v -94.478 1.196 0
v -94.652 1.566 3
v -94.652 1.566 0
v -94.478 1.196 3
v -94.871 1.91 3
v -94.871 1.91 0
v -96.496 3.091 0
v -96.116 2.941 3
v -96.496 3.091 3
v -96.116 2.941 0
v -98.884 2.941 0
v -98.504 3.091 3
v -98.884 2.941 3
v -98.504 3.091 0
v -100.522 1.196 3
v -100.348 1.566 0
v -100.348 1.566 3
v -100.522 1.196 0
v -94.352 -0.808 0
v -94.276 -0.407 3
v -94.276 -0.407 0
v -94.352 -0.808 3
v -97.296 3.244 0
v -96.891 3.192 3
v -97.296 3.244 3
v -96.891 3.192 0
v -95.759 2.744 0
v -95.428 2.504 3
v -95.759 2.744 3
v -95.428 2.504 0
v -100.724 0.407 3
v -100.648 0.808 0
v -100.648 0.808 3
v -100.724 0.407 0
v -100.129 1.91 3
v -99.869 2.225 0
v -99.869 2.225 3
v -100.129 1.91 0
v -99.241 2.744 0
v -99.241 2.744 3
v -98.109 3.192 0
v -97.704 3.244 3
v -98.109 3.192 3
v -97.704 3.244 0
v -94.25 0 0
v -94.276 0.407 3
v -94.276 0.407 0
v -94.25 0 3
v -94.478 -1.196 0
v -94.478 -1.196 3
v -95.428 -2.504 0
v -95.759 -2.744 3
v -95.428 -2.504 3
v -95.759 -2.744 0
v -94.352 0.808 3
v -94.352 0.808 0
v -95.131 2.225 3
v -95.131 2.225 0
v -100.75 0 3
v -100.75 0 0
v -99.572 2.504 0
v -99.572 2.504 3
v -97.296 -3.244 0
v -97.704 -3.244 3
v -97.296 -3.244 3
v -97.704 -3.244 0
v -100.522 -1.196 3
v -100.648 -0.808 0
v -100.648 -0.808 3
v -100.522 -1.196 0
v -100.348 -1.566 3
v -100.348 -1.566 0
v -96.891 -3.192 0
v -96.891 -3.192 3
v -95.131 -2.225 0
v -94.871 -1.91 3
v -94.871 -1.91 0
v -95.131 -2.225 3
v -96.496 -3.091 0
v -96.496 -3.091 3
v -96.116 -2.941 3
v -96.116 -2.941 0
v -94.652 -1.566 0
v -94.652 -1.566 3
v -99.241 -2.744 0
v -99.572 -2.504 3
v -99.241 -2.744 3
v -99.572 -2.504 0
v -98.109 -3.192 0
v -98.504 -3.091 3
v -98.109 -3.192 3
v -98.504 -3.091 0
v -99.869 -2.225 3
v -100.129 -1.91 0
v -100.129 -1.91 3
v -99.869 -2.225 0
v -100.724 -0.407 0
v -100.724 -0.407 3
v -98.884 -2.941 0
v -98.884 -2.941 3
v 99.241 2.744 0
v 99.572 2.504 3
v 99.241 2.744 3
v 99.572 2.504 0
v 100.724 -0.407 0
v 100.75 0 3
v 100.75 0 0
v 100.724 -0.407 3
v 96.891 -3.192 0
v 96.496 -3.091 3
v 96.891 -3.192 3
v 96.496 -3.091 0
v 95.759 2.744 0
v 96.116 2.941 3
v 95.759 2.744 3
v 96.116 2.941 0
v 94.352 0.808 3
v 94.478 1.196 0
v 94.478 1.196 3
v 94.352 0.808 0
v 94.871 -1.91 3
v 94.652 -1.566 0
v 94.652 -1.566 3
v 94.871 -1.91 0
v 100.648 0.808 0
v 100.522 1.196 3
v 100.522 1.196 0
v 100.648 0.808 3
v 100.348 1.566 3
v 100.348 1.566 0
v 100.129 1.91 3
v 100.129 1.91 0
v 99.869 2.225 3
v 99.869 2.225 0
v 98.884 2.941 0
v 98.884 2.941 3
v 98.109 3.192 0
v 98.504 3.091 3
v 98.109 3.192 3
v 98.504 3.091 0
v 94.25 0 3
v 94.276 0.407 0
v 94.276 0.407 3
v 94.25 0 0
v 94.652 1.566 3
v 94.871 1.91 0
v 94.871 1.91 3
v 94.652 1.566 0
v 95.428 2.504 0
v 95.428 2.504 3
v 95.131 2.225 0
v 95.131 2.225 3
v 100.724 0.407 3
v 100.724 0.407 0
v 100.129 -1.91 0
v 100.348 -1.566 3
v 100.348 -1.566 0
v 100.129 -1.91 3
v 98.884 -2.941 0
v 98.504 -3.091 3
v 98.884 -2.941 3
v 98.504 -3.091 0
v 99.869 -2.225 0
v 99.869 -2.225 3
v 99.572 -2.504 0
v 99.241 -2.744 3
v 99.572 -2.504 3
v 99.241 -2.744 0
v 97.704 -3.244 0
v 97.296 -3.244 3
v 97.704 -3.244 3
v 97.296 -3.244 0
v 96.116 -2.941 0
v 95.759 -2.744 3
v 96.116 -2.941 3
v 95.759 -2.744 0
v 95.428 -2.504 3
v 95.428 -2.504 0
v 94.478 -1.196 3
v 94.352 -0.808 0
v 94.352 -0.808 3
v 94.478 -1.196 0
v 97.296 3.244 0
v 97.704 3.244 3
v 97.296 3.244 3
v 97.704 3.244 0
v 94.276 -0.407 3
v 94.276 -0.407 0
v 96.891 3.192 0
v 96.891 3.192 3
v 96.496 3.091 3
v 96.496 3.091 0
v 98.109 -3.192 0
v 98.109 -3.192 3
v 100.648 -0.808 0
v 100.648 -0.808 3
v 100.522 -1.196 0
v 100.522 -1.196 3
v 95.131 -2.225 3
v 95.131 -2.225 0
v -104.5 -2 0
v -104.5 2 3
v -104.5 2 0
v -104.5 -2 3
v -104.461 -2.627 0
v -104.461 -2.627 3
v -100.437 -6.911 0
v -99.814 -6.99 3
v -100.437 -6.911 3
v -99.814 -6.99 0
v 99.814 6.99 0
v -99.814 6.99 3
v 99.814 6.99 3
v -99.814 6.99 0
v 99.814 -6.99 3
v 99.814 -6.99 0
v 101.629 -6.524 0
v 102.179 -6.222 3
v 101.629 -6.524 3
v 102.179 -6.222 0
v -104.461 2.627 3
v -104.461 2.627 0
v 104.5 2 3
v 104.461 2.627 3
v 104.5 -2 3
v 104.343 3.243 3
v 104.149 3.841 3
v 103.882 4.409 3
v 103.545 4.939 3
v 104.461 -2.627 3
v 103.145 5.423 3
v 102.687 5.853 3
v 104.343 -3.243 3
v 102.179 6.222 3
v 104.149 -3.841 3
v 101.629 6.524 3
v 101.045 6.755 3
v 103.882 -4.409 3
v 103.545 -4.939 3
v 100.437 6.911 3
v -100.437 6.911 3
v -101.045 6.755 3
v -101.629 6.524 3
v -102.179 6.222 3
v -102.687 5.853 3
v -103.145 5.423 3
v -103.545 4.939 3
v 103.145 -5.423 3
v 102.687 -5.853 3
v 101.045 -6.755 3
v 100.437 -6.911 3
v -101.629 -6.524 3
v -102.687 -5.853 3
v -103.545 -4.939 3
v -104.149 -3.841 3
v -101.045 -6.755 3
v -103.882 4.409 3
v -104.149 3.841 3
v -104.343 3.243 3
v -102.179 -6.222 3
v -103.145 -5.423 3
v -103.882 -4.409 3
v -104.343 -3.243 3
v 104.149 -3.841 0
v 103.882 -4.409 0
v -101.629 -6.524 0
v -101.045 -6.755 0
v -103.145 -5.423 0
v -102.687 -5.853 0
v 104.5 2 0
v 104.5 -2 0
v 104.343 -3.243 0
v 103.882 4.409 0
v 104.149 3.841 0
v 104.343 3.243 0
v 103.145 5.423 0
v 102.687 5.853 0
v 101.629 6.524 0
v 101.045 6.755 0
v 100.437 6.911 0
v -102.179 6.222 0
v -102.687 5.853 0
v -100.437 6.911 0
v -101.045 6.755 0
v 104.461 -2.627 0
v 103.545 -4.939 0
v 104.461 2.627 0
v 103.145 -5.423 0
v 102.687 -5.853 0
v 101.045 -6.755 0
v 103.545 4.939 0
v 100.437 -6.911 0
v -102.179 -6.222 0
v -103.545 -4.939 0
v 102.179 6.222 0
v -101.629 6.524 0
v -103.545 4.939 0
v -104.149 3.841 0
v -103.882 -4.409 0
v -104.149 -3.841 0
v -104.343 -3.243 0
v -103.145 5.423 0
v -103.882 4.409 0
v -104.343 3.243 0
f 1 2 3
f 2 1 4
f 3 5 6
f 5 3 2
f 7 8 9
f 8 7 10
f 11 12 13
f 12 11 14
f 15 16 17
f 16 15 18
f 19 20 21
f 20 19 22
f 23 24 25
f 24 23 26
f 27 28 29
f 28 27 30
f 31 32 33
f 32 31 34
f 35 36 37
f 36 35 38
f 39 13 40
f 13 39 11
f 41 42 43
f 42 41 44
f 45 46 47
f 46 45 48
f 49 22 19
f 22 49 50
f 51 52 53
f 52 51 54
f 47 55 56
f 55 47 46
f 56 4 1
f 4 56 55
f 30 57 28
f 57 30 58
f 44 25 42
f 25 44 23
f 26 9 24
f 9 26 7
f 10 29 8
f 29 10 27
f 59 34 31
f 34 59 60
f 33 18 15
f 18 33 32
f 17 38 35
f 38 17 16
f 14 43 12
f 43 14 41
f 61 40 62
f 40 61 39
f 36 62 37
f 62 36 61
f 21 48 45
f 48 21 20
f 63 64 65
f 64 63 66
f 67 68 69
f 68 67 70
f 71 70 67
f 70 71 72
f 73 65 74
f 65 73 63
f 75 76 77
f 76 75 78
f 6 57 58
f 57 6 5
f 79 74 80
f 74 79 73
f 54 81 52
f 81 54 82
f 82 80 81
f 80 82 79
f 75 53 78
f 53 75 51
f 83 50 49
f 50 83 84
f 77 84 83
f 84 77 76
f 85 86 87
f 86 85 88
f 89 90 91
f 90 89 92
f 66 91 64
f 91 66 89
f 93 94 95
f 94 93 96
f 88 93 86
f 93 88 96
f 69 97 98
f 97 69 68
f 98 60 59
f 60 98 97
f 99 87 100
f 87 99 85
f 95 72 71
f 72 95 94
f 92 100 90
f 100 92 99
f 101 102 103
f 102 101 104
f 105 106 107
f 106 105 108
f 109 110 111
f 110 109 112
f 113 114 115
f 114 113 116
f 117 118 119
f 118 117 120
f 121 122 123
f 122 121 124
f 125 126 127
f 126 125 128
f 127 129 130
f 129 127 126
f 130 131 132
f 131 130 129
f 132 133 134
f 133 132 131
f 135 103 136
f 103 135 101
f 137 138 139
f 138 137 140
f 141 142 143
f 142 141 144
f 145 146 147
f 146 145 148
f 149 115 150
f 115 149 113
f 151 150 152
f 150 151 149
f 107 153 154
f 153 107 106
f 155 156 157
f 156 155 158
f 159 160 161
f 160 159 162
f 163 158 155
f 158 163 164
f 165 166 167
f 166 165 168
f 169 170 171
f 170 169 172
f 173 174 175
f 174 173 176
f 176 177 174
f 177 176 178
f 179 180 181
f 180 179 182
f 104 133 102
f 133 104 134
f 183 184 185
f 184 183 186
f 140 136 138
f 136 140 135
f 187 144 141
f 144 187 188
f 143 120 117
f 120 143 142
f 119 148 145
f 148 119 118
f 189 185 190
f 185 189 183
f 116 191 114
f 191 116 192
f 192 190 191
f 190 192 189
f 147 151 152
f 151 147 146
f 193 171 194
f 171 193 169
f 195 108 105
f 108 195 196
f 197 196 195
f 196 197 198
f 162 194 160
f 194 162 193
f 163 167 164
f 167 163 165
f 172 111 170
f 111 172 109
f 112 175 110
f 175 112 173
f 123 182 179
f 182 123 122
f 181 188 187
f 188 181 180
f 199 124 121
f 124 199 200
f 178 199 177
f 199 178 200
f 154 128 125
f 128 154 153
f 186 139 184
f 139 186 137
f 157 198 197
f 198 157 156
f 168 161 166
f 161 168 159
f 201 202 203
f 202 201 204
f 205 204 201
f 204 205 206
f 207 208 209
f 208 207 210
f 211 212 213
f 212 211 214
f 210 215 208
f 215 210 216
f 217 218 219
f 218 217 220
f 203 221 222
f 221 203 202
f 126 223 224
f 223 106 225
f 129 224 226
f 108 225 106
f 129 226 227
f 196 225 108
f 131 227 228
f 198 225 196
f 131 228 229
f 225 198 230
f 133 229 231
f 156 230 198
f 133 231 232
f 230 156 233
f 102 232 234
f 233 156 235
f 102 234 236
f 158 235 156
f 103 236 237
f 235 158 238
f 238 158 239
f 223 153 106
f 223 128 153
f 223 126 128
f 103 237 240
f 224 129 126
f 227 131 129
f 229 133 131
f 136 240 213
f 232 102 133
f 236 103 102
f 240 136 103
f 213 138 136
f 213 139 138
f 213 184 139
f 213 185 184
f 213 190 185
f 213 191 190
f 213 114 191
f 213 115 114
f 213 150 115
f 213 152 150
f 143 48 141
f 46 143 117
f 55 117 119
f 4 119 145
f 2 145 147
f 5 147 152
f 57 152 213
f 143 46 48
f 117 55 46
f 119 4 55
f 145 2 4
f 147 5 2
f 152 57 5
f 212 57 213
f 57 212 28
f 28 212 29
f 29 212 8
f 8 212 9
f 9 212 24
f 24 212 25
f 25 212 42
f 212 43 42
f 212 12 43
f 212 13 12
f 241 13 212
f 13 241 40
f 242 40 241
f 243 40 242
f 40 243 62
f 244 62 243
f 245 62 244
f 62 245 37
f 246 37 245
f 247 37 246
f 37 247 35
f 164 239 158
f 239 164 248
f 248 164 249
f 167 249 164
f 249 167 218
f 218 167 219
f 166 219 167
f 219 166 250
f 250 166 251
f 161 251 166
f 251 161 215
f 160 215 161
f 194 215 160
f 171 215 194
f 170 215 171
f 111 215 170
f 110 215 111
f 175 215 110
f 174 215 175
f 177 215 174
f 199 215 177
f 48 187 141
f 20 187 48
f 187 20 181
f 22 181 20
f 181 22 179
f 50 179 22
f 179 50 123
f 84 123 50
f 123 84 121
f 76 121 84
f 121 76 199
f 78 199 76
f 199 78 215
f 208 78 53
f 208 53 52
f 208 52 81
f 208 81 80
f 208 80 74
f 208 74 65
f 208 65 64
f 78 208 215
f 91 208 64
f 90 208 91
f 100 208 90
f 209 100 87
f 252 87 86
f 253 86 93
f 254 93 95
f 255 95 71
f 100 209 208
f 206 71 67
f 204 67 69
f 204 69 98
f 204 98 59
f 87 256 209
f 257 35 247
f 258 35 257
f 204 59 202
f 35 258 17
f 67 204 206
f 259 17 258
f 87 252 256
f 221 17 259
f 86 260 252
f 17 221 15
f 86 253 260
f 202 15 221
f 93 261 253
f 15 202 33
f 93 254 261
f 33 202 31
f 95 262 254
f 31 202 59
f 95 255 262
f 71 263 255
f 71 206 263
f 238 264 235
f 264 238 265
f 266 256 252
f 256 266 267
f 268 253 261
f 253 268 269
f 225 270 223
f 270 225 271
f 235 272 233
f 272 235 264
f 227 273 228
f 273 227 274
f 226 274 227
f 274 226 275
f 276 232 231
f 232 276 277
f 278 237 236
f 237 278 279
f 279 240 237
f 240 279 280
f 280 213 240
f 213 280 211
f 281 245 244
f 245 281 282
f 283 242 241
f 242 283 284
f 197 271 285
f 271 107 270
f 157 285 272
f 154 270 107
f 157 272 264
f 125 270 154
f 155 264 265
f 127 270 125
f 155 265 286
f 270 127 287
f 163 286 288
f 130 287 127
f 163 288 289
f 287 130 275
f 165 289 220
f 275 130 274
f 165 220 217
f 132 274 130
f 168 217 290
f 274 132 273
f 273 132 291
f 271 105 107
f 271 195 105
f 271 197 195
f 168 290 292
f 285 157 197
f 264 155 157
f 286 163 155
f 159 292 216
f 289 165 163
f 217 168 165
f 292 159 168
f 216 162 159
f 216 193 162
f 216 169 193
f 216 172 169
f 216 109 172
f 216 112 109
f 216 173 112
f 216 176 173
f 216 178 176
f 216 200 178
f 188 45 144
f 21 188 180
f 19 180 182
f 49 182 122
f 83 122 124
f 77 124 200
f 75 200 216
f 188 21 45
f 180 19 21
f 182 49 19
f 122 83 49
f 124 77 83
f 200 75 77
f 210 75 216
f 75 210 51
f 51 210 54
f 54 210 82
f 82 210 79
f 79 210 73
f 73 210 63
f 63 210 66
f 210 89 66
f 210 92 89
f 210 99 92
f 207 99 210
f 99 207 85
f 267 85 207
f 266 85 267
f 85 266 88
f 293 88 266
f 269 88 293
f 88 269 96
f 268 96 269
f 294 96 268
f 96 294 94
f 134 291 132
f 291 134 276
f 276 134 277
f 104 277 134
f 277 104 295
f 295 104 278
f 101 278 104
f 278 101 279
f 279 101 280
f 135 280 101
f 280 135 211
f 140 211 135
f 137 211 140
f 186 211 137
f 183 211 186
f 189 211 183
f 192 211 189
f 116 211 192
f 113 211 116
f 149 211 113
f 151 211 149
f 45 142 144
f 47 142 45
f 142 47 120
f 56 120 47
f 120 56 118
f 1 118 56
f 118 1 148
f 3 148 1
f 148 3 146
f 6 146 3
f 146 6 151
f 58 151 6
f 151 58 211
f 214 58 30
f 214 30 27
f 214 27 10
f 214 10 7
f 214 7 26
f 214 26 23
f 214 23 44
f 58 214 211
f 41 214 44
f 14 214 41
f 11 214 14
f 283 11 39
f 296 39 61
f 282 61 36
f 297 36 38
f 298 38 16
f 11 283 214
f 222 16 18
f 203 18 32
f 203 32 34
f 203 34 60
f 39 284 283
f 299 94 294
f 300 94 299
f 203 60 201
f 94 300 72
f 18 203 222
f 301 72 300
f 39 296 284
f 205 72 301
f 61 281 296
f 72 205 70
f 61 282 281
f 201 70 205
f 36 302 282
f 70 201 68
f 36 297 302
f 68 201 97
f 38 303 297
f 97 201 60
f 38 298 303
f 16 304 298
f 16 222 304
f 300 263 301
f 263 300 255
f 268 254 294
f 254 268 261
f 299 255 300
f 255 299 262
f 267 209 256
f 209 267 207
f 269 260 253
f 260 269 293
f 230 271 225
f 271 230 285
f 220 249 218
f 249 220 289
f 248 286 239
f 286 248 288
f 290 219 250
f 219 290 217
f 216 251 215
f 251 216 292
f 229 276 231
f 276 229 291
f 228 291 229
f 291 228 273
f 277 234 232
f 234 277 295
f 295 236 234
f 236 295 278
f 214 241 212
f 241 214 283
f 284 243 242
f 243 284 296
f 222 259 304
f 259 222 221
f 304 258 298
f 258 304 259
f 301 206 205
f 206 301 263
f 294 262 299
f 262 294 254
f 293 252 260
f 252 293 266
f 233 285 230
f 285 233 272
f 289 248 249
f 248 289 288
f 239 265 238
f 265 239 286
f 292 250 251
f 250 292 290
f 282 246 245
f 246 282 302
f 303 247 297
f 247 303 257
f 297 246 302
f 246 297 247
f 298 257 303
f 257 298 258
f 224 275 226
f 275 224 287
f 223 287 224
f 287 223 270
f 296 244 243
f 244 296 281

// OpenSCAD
$fn = 50;


difference() {
	union() {
		hull() {
			translate(v = [-99.5000000000, 2.0000000000, 0]) {
				cylinder(h = 3, r = 5);
			}
			translate(v = [99.5000000000, 2.0000000000, 0]) {
				cylinder(h = 3, r = 5);
			}
			translate(v = [-99.5000000000, -2.0000000000, 0]) {
				cylinder(h = 3, r = 5);
			}
			translate(v = [99.5000000000, -2.0000000000, 0]) {
				cylinder(h = 3, r = 5);
			}
		}
	}
	union() {
		translate(v = [-97.5000000000, 0.0000000000, -100.0000000000]) {
			cylinder(h = 200, r = 3.2500000000);
		}
		translate(v = [-97.5000000000, 0.0000000000, -100.0000000000]) {
			cylinder(h = 200, r = 3.2500000000);
		}
		translate(v = [97.5000000000, 0.0000000000, -100.0000000000]) {
			cylinder(h = 200, r = 3.2500000000);
		}
		translate(v = [97.5000000000, 0.0000000000, -100.0000000000]) {
			cylinder(h = 200, r = 3.2500000000);
		}
	}
}
